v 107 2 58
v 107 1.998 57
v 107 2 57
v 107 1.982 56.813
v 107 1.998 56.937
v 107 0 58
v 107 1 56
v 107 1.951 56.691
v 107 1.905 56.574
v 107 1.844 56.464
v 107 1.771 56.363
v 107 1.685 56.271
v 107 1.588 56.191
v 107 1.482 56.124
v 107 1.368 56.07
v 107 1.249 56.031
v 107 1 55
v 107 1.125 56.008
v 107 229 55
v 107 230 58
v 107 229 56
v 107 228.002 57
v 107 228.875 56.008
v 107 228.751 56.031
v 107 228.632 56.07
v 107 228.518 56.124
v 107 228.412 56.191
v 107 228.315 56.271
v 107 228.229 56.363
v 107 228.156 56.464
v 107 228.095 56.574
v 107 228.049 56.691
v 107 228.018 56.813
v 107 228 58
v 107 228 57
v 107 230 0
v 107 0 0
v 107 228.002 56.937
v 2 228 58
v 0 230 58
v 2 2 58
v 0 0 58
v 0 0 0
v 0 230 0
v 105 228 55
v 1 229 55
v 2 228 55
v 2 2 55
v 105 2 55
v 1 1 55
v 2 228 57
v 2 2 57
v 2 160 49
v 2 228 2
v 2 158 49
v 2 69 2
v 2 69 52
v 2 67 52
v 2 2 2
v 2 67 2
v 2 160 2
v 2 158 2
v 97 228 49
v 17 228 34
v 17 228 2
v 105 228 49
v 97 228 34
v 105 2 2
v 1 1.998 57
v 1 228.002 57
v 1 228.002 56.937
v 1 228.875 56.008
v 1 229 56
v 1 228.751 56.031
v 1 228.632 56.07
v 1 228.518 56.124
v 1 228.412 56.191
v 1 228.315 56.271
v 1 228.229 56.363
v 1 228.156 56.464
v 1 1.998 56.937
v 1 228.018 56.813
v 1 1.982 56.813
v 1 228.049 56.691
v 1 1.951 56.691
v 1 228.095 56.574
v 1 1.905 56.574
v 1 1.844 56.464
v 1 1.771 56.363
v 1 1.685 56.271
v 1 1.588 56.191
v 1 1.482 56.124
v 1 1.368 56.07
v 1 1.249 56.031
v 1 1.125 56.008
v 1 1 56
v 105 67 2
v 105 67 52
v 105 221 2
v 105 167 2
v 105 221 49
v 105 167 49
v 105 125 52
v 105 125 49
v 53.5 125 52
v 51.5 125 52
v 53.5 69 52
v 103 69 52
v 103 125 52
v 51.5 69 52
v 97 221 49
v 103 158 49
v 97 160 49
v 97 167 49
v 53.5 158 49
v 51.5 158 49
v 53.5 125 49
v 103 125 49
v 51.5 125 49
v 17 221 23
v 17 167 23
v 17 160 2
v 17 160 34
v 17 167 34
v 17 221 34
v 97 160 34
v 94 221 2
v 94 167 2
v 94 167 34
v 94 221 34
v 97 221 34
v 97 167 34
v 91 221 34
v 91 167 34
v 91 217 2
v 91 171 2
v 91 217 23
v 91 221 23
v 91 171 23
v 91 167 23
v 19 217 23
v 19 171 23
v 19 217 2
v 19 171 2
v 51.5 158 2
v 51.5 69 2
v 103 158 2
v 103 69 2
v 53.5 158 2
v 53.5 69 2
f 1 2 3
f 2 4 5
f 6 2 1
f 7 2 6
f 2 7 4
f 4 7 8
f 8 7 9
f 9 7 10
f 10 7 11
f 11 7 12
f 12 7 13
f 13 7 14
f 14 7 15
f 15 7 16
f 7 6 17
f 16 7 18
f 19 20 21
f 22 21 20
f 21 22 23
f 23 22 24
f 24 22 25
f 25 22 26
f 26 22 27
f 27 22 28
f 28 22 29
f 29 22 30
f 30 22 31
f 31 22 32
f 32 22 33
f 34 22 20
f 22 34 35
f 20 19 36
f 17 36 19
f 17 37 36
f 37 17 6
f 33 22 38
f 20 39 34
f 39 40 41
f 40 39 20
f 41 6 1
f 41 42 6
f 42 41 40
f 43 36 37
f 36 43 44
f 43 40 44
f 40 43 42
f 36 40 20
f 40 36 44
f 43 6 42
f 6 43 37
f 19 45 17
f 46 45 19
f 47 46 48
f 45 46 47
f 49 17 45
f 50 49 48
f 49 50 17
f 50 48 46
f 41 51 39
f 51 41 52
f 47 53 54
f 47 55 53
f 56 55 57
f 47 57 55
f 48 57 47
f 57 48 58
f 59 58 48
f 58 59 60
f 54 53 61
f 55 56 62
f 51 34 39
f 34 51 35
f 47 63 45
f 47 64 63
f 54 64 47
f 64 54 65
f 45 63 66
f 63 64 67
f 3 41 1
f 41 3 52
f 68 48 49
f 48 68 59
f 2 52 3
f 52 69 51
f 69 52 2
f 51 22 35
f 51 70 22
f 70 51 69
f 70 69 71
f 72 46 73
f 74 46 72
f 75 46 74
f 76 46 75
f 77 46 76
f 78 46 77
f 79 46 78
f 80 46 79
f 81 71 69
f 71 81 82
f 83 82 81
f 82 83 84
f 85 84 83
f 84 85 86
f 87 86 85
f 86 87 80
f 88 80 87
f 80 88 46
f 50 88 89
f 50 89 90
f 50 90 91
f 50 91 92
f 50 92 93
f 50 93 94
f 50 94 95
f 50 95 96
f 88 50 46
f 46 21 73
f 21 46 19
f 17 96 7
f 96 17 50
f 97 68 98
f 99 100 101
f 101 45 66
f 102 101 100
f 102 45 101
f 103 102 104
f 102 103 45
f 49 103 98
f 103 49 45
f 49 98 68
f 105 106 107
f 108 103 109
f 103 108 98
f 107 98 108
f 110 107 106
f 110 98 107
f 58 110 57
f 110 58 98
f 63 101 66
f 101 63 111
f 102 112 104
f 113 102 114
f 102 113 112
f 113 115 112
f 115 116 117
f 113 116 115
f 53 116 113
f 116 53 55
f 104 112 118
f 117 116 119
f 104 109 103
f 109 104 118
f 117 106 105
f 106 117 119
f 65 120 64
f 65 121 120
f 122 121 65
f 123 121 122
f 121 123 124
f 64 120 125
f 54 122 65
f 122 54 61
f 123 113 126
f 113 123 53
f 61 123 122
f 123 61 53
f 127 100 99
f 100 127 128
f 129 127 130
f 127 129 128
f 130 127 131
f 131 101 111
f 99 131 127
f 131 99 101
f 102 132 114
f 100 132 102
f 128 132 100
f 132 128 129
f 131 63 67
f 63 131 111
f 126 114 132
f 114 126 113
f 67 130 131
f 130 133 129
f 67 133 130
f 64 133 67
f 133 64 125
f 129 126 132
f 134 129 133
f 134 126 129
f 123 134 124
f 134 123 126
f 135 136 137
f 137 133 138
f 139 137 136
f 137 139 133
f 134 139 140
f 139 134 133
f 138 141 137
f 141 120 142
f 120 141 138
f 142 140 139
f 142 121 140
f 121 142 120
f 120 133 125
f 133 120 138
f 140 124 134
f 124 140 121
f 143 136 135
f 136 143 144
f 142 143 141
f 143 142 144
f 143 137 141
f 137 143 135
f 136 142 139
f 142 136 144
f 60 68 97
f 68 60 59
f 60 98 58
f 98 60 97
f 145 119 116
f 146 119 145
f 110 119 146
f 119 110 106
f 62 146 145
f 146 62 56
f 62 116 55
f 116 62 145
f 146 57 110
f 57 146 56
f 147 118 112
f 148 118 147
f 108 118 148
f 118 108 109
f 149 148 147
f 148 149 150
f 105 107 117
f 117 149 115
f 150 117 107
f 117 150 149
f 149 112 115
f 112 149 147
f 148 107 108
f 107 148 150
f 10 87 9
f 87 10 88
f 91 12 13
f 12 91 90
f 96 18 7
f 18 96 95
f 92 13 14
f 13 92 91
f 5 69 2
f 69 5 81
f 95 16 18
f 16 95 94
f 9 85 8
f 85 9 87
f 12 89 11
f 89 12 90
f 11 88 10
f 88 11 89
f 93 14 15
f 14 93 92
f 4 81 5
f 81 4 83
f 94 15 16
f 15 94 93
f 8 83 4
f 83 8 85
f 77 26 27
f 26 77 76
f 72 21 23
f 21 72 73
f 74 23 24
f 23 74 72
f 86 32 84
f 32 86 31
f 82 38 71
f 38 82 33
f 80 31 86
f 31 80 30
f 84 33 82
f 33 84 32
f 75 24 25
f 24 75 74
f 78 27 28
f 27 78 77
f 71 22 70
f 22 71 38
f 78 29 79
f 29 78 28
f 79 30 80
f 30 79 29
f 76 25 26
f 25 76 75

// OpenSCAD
DIM = [
	107,
	230,
	29*2
];

WALL  = 2;
FLOOR = 2;



union(){
	difference(){
		cube(DIM);
	
		// Lid Opening
		Lid = [ 0,0,3 ];
		translate([ WALL , WALL , DIM.z-Lid.z ]) cube([ DIM.x-WALL+0.1 , DIM.y-2*WALL , Lid.z+0.1 ]);
		translate([ WALL-1 , WALL-1 , DIM.z-Lid.z ]) cube([ DIM.x-1+0.1 , DIM.y-2 , 2 ]);
		
		// Console
		Console = [0,0,3];
		translate([ WALL , WALL , DIM.z-Lid.z-Console.z ]) cube([ DIM.x-2*WALL , DIM.y-2*WALL , Lid.z+0.1 ]);
		
		// CubeConsole
		CubeConsole = [ DIM.x-2*WALL , DIM.x-2*WALL , 3 ];
		translate([ WALL , DIM.y-WALL-CubeConsole.y , DIM.z-Lid.z-Console.z-CubeConsole.z ]) cube(CubeConsole);
		
		// CARDS
		// Cmd Cards Stand
		CardsCMDStand = [ 15 , 68 , 0 ];
		translate([ WALL , DIM.y-WALL-CardsCMDStand.y , FLOOR ]) cube([ CardsCMDStand.x , CardsCMDStand.y , DIM.z ]);
		// Tec Cards Stand
		CardsTECStand = [ 11 , 54 , 0 ];
		translate([ DIM.x-WALL-CardsTECStand.x , DIM.y-WALL-CardsTECStand.y-0.5*(CardsCMDStand.y-CardsTECStand.y), FLOOR ]){
			cube([ CardsTECStand.x , CardsTECStand.y , DIM.z ]);};
		// Cmd Cards Storage
		CardsCMDStorage = [ 95 , 68 , 15.1 ];
		translate([ WALL , DIM.y-WALL-CardsCMDStand.y , DIM.z-Lid.z-Console.z-CubeConsole.z-CardsCMDStorage.z+0.1 ]) cube(CardsCMDStorage);
		// Tec Cards Storage
		CardsTECStorage = [ 79 , 54 , 11.1 ];
			translate([ WALL+10 , DIM.y-WALL-CardsTECStand.y-0.5*(CardsCMDStand.y-CardsTECStand.y), DIM.z-Lid.z-Console.z-CubeConsole.z-CardsCMDStorage.z-CardsTECStorage.z+0.2 ]){
			cube(CardsTECStorage);};
		
		// Dice Storage
		Dice = [ 72 , 46 , DIM.z ];
		translate([ WALL+CardsCMDStand.x+2 , DIM.y-WALL-CardsTECStand.y-0.5*(CardsCMDStand.y-CardsTECStand.y)+4 , FLOOR ]){
		cube(Dice);};
		
		// Spires
		Spire = [ DIM.x-2*WALL , 65 , DIM.z ];
		translate([ WALL , WALL , FLOOR ]) cube(Spire);
		
		// Cubes
		Cubes = [ 0.5*(DIM.x-2*WALL)-2 , DIM.y-4*WALL-Spire.y-CardsCMDStand.y , DIM.z ];
		translate([ WALL , WALL+Spire.y+WALL , FLOOR ]) cube(Cubes);
		translate([ WALL+Cubes.x+2 , WALL+Spire.y+WALL , FLOOR ]) cube(Cubes);
		echo(Cubes.x,Cubes.y);
	}
	
	// Lid Opening Cylinder
	translate([ 0 , 1 , DIM.z-1 ]) rotate([0,90,0]) cylinder(DIM.x,r=1,$fn=50);
	translate([ 0 , DIM.y-1 , DIM.z-1 ]) rotate([0,90,0]) cylinder(DIM.x,r=1,$fn=50);

}
